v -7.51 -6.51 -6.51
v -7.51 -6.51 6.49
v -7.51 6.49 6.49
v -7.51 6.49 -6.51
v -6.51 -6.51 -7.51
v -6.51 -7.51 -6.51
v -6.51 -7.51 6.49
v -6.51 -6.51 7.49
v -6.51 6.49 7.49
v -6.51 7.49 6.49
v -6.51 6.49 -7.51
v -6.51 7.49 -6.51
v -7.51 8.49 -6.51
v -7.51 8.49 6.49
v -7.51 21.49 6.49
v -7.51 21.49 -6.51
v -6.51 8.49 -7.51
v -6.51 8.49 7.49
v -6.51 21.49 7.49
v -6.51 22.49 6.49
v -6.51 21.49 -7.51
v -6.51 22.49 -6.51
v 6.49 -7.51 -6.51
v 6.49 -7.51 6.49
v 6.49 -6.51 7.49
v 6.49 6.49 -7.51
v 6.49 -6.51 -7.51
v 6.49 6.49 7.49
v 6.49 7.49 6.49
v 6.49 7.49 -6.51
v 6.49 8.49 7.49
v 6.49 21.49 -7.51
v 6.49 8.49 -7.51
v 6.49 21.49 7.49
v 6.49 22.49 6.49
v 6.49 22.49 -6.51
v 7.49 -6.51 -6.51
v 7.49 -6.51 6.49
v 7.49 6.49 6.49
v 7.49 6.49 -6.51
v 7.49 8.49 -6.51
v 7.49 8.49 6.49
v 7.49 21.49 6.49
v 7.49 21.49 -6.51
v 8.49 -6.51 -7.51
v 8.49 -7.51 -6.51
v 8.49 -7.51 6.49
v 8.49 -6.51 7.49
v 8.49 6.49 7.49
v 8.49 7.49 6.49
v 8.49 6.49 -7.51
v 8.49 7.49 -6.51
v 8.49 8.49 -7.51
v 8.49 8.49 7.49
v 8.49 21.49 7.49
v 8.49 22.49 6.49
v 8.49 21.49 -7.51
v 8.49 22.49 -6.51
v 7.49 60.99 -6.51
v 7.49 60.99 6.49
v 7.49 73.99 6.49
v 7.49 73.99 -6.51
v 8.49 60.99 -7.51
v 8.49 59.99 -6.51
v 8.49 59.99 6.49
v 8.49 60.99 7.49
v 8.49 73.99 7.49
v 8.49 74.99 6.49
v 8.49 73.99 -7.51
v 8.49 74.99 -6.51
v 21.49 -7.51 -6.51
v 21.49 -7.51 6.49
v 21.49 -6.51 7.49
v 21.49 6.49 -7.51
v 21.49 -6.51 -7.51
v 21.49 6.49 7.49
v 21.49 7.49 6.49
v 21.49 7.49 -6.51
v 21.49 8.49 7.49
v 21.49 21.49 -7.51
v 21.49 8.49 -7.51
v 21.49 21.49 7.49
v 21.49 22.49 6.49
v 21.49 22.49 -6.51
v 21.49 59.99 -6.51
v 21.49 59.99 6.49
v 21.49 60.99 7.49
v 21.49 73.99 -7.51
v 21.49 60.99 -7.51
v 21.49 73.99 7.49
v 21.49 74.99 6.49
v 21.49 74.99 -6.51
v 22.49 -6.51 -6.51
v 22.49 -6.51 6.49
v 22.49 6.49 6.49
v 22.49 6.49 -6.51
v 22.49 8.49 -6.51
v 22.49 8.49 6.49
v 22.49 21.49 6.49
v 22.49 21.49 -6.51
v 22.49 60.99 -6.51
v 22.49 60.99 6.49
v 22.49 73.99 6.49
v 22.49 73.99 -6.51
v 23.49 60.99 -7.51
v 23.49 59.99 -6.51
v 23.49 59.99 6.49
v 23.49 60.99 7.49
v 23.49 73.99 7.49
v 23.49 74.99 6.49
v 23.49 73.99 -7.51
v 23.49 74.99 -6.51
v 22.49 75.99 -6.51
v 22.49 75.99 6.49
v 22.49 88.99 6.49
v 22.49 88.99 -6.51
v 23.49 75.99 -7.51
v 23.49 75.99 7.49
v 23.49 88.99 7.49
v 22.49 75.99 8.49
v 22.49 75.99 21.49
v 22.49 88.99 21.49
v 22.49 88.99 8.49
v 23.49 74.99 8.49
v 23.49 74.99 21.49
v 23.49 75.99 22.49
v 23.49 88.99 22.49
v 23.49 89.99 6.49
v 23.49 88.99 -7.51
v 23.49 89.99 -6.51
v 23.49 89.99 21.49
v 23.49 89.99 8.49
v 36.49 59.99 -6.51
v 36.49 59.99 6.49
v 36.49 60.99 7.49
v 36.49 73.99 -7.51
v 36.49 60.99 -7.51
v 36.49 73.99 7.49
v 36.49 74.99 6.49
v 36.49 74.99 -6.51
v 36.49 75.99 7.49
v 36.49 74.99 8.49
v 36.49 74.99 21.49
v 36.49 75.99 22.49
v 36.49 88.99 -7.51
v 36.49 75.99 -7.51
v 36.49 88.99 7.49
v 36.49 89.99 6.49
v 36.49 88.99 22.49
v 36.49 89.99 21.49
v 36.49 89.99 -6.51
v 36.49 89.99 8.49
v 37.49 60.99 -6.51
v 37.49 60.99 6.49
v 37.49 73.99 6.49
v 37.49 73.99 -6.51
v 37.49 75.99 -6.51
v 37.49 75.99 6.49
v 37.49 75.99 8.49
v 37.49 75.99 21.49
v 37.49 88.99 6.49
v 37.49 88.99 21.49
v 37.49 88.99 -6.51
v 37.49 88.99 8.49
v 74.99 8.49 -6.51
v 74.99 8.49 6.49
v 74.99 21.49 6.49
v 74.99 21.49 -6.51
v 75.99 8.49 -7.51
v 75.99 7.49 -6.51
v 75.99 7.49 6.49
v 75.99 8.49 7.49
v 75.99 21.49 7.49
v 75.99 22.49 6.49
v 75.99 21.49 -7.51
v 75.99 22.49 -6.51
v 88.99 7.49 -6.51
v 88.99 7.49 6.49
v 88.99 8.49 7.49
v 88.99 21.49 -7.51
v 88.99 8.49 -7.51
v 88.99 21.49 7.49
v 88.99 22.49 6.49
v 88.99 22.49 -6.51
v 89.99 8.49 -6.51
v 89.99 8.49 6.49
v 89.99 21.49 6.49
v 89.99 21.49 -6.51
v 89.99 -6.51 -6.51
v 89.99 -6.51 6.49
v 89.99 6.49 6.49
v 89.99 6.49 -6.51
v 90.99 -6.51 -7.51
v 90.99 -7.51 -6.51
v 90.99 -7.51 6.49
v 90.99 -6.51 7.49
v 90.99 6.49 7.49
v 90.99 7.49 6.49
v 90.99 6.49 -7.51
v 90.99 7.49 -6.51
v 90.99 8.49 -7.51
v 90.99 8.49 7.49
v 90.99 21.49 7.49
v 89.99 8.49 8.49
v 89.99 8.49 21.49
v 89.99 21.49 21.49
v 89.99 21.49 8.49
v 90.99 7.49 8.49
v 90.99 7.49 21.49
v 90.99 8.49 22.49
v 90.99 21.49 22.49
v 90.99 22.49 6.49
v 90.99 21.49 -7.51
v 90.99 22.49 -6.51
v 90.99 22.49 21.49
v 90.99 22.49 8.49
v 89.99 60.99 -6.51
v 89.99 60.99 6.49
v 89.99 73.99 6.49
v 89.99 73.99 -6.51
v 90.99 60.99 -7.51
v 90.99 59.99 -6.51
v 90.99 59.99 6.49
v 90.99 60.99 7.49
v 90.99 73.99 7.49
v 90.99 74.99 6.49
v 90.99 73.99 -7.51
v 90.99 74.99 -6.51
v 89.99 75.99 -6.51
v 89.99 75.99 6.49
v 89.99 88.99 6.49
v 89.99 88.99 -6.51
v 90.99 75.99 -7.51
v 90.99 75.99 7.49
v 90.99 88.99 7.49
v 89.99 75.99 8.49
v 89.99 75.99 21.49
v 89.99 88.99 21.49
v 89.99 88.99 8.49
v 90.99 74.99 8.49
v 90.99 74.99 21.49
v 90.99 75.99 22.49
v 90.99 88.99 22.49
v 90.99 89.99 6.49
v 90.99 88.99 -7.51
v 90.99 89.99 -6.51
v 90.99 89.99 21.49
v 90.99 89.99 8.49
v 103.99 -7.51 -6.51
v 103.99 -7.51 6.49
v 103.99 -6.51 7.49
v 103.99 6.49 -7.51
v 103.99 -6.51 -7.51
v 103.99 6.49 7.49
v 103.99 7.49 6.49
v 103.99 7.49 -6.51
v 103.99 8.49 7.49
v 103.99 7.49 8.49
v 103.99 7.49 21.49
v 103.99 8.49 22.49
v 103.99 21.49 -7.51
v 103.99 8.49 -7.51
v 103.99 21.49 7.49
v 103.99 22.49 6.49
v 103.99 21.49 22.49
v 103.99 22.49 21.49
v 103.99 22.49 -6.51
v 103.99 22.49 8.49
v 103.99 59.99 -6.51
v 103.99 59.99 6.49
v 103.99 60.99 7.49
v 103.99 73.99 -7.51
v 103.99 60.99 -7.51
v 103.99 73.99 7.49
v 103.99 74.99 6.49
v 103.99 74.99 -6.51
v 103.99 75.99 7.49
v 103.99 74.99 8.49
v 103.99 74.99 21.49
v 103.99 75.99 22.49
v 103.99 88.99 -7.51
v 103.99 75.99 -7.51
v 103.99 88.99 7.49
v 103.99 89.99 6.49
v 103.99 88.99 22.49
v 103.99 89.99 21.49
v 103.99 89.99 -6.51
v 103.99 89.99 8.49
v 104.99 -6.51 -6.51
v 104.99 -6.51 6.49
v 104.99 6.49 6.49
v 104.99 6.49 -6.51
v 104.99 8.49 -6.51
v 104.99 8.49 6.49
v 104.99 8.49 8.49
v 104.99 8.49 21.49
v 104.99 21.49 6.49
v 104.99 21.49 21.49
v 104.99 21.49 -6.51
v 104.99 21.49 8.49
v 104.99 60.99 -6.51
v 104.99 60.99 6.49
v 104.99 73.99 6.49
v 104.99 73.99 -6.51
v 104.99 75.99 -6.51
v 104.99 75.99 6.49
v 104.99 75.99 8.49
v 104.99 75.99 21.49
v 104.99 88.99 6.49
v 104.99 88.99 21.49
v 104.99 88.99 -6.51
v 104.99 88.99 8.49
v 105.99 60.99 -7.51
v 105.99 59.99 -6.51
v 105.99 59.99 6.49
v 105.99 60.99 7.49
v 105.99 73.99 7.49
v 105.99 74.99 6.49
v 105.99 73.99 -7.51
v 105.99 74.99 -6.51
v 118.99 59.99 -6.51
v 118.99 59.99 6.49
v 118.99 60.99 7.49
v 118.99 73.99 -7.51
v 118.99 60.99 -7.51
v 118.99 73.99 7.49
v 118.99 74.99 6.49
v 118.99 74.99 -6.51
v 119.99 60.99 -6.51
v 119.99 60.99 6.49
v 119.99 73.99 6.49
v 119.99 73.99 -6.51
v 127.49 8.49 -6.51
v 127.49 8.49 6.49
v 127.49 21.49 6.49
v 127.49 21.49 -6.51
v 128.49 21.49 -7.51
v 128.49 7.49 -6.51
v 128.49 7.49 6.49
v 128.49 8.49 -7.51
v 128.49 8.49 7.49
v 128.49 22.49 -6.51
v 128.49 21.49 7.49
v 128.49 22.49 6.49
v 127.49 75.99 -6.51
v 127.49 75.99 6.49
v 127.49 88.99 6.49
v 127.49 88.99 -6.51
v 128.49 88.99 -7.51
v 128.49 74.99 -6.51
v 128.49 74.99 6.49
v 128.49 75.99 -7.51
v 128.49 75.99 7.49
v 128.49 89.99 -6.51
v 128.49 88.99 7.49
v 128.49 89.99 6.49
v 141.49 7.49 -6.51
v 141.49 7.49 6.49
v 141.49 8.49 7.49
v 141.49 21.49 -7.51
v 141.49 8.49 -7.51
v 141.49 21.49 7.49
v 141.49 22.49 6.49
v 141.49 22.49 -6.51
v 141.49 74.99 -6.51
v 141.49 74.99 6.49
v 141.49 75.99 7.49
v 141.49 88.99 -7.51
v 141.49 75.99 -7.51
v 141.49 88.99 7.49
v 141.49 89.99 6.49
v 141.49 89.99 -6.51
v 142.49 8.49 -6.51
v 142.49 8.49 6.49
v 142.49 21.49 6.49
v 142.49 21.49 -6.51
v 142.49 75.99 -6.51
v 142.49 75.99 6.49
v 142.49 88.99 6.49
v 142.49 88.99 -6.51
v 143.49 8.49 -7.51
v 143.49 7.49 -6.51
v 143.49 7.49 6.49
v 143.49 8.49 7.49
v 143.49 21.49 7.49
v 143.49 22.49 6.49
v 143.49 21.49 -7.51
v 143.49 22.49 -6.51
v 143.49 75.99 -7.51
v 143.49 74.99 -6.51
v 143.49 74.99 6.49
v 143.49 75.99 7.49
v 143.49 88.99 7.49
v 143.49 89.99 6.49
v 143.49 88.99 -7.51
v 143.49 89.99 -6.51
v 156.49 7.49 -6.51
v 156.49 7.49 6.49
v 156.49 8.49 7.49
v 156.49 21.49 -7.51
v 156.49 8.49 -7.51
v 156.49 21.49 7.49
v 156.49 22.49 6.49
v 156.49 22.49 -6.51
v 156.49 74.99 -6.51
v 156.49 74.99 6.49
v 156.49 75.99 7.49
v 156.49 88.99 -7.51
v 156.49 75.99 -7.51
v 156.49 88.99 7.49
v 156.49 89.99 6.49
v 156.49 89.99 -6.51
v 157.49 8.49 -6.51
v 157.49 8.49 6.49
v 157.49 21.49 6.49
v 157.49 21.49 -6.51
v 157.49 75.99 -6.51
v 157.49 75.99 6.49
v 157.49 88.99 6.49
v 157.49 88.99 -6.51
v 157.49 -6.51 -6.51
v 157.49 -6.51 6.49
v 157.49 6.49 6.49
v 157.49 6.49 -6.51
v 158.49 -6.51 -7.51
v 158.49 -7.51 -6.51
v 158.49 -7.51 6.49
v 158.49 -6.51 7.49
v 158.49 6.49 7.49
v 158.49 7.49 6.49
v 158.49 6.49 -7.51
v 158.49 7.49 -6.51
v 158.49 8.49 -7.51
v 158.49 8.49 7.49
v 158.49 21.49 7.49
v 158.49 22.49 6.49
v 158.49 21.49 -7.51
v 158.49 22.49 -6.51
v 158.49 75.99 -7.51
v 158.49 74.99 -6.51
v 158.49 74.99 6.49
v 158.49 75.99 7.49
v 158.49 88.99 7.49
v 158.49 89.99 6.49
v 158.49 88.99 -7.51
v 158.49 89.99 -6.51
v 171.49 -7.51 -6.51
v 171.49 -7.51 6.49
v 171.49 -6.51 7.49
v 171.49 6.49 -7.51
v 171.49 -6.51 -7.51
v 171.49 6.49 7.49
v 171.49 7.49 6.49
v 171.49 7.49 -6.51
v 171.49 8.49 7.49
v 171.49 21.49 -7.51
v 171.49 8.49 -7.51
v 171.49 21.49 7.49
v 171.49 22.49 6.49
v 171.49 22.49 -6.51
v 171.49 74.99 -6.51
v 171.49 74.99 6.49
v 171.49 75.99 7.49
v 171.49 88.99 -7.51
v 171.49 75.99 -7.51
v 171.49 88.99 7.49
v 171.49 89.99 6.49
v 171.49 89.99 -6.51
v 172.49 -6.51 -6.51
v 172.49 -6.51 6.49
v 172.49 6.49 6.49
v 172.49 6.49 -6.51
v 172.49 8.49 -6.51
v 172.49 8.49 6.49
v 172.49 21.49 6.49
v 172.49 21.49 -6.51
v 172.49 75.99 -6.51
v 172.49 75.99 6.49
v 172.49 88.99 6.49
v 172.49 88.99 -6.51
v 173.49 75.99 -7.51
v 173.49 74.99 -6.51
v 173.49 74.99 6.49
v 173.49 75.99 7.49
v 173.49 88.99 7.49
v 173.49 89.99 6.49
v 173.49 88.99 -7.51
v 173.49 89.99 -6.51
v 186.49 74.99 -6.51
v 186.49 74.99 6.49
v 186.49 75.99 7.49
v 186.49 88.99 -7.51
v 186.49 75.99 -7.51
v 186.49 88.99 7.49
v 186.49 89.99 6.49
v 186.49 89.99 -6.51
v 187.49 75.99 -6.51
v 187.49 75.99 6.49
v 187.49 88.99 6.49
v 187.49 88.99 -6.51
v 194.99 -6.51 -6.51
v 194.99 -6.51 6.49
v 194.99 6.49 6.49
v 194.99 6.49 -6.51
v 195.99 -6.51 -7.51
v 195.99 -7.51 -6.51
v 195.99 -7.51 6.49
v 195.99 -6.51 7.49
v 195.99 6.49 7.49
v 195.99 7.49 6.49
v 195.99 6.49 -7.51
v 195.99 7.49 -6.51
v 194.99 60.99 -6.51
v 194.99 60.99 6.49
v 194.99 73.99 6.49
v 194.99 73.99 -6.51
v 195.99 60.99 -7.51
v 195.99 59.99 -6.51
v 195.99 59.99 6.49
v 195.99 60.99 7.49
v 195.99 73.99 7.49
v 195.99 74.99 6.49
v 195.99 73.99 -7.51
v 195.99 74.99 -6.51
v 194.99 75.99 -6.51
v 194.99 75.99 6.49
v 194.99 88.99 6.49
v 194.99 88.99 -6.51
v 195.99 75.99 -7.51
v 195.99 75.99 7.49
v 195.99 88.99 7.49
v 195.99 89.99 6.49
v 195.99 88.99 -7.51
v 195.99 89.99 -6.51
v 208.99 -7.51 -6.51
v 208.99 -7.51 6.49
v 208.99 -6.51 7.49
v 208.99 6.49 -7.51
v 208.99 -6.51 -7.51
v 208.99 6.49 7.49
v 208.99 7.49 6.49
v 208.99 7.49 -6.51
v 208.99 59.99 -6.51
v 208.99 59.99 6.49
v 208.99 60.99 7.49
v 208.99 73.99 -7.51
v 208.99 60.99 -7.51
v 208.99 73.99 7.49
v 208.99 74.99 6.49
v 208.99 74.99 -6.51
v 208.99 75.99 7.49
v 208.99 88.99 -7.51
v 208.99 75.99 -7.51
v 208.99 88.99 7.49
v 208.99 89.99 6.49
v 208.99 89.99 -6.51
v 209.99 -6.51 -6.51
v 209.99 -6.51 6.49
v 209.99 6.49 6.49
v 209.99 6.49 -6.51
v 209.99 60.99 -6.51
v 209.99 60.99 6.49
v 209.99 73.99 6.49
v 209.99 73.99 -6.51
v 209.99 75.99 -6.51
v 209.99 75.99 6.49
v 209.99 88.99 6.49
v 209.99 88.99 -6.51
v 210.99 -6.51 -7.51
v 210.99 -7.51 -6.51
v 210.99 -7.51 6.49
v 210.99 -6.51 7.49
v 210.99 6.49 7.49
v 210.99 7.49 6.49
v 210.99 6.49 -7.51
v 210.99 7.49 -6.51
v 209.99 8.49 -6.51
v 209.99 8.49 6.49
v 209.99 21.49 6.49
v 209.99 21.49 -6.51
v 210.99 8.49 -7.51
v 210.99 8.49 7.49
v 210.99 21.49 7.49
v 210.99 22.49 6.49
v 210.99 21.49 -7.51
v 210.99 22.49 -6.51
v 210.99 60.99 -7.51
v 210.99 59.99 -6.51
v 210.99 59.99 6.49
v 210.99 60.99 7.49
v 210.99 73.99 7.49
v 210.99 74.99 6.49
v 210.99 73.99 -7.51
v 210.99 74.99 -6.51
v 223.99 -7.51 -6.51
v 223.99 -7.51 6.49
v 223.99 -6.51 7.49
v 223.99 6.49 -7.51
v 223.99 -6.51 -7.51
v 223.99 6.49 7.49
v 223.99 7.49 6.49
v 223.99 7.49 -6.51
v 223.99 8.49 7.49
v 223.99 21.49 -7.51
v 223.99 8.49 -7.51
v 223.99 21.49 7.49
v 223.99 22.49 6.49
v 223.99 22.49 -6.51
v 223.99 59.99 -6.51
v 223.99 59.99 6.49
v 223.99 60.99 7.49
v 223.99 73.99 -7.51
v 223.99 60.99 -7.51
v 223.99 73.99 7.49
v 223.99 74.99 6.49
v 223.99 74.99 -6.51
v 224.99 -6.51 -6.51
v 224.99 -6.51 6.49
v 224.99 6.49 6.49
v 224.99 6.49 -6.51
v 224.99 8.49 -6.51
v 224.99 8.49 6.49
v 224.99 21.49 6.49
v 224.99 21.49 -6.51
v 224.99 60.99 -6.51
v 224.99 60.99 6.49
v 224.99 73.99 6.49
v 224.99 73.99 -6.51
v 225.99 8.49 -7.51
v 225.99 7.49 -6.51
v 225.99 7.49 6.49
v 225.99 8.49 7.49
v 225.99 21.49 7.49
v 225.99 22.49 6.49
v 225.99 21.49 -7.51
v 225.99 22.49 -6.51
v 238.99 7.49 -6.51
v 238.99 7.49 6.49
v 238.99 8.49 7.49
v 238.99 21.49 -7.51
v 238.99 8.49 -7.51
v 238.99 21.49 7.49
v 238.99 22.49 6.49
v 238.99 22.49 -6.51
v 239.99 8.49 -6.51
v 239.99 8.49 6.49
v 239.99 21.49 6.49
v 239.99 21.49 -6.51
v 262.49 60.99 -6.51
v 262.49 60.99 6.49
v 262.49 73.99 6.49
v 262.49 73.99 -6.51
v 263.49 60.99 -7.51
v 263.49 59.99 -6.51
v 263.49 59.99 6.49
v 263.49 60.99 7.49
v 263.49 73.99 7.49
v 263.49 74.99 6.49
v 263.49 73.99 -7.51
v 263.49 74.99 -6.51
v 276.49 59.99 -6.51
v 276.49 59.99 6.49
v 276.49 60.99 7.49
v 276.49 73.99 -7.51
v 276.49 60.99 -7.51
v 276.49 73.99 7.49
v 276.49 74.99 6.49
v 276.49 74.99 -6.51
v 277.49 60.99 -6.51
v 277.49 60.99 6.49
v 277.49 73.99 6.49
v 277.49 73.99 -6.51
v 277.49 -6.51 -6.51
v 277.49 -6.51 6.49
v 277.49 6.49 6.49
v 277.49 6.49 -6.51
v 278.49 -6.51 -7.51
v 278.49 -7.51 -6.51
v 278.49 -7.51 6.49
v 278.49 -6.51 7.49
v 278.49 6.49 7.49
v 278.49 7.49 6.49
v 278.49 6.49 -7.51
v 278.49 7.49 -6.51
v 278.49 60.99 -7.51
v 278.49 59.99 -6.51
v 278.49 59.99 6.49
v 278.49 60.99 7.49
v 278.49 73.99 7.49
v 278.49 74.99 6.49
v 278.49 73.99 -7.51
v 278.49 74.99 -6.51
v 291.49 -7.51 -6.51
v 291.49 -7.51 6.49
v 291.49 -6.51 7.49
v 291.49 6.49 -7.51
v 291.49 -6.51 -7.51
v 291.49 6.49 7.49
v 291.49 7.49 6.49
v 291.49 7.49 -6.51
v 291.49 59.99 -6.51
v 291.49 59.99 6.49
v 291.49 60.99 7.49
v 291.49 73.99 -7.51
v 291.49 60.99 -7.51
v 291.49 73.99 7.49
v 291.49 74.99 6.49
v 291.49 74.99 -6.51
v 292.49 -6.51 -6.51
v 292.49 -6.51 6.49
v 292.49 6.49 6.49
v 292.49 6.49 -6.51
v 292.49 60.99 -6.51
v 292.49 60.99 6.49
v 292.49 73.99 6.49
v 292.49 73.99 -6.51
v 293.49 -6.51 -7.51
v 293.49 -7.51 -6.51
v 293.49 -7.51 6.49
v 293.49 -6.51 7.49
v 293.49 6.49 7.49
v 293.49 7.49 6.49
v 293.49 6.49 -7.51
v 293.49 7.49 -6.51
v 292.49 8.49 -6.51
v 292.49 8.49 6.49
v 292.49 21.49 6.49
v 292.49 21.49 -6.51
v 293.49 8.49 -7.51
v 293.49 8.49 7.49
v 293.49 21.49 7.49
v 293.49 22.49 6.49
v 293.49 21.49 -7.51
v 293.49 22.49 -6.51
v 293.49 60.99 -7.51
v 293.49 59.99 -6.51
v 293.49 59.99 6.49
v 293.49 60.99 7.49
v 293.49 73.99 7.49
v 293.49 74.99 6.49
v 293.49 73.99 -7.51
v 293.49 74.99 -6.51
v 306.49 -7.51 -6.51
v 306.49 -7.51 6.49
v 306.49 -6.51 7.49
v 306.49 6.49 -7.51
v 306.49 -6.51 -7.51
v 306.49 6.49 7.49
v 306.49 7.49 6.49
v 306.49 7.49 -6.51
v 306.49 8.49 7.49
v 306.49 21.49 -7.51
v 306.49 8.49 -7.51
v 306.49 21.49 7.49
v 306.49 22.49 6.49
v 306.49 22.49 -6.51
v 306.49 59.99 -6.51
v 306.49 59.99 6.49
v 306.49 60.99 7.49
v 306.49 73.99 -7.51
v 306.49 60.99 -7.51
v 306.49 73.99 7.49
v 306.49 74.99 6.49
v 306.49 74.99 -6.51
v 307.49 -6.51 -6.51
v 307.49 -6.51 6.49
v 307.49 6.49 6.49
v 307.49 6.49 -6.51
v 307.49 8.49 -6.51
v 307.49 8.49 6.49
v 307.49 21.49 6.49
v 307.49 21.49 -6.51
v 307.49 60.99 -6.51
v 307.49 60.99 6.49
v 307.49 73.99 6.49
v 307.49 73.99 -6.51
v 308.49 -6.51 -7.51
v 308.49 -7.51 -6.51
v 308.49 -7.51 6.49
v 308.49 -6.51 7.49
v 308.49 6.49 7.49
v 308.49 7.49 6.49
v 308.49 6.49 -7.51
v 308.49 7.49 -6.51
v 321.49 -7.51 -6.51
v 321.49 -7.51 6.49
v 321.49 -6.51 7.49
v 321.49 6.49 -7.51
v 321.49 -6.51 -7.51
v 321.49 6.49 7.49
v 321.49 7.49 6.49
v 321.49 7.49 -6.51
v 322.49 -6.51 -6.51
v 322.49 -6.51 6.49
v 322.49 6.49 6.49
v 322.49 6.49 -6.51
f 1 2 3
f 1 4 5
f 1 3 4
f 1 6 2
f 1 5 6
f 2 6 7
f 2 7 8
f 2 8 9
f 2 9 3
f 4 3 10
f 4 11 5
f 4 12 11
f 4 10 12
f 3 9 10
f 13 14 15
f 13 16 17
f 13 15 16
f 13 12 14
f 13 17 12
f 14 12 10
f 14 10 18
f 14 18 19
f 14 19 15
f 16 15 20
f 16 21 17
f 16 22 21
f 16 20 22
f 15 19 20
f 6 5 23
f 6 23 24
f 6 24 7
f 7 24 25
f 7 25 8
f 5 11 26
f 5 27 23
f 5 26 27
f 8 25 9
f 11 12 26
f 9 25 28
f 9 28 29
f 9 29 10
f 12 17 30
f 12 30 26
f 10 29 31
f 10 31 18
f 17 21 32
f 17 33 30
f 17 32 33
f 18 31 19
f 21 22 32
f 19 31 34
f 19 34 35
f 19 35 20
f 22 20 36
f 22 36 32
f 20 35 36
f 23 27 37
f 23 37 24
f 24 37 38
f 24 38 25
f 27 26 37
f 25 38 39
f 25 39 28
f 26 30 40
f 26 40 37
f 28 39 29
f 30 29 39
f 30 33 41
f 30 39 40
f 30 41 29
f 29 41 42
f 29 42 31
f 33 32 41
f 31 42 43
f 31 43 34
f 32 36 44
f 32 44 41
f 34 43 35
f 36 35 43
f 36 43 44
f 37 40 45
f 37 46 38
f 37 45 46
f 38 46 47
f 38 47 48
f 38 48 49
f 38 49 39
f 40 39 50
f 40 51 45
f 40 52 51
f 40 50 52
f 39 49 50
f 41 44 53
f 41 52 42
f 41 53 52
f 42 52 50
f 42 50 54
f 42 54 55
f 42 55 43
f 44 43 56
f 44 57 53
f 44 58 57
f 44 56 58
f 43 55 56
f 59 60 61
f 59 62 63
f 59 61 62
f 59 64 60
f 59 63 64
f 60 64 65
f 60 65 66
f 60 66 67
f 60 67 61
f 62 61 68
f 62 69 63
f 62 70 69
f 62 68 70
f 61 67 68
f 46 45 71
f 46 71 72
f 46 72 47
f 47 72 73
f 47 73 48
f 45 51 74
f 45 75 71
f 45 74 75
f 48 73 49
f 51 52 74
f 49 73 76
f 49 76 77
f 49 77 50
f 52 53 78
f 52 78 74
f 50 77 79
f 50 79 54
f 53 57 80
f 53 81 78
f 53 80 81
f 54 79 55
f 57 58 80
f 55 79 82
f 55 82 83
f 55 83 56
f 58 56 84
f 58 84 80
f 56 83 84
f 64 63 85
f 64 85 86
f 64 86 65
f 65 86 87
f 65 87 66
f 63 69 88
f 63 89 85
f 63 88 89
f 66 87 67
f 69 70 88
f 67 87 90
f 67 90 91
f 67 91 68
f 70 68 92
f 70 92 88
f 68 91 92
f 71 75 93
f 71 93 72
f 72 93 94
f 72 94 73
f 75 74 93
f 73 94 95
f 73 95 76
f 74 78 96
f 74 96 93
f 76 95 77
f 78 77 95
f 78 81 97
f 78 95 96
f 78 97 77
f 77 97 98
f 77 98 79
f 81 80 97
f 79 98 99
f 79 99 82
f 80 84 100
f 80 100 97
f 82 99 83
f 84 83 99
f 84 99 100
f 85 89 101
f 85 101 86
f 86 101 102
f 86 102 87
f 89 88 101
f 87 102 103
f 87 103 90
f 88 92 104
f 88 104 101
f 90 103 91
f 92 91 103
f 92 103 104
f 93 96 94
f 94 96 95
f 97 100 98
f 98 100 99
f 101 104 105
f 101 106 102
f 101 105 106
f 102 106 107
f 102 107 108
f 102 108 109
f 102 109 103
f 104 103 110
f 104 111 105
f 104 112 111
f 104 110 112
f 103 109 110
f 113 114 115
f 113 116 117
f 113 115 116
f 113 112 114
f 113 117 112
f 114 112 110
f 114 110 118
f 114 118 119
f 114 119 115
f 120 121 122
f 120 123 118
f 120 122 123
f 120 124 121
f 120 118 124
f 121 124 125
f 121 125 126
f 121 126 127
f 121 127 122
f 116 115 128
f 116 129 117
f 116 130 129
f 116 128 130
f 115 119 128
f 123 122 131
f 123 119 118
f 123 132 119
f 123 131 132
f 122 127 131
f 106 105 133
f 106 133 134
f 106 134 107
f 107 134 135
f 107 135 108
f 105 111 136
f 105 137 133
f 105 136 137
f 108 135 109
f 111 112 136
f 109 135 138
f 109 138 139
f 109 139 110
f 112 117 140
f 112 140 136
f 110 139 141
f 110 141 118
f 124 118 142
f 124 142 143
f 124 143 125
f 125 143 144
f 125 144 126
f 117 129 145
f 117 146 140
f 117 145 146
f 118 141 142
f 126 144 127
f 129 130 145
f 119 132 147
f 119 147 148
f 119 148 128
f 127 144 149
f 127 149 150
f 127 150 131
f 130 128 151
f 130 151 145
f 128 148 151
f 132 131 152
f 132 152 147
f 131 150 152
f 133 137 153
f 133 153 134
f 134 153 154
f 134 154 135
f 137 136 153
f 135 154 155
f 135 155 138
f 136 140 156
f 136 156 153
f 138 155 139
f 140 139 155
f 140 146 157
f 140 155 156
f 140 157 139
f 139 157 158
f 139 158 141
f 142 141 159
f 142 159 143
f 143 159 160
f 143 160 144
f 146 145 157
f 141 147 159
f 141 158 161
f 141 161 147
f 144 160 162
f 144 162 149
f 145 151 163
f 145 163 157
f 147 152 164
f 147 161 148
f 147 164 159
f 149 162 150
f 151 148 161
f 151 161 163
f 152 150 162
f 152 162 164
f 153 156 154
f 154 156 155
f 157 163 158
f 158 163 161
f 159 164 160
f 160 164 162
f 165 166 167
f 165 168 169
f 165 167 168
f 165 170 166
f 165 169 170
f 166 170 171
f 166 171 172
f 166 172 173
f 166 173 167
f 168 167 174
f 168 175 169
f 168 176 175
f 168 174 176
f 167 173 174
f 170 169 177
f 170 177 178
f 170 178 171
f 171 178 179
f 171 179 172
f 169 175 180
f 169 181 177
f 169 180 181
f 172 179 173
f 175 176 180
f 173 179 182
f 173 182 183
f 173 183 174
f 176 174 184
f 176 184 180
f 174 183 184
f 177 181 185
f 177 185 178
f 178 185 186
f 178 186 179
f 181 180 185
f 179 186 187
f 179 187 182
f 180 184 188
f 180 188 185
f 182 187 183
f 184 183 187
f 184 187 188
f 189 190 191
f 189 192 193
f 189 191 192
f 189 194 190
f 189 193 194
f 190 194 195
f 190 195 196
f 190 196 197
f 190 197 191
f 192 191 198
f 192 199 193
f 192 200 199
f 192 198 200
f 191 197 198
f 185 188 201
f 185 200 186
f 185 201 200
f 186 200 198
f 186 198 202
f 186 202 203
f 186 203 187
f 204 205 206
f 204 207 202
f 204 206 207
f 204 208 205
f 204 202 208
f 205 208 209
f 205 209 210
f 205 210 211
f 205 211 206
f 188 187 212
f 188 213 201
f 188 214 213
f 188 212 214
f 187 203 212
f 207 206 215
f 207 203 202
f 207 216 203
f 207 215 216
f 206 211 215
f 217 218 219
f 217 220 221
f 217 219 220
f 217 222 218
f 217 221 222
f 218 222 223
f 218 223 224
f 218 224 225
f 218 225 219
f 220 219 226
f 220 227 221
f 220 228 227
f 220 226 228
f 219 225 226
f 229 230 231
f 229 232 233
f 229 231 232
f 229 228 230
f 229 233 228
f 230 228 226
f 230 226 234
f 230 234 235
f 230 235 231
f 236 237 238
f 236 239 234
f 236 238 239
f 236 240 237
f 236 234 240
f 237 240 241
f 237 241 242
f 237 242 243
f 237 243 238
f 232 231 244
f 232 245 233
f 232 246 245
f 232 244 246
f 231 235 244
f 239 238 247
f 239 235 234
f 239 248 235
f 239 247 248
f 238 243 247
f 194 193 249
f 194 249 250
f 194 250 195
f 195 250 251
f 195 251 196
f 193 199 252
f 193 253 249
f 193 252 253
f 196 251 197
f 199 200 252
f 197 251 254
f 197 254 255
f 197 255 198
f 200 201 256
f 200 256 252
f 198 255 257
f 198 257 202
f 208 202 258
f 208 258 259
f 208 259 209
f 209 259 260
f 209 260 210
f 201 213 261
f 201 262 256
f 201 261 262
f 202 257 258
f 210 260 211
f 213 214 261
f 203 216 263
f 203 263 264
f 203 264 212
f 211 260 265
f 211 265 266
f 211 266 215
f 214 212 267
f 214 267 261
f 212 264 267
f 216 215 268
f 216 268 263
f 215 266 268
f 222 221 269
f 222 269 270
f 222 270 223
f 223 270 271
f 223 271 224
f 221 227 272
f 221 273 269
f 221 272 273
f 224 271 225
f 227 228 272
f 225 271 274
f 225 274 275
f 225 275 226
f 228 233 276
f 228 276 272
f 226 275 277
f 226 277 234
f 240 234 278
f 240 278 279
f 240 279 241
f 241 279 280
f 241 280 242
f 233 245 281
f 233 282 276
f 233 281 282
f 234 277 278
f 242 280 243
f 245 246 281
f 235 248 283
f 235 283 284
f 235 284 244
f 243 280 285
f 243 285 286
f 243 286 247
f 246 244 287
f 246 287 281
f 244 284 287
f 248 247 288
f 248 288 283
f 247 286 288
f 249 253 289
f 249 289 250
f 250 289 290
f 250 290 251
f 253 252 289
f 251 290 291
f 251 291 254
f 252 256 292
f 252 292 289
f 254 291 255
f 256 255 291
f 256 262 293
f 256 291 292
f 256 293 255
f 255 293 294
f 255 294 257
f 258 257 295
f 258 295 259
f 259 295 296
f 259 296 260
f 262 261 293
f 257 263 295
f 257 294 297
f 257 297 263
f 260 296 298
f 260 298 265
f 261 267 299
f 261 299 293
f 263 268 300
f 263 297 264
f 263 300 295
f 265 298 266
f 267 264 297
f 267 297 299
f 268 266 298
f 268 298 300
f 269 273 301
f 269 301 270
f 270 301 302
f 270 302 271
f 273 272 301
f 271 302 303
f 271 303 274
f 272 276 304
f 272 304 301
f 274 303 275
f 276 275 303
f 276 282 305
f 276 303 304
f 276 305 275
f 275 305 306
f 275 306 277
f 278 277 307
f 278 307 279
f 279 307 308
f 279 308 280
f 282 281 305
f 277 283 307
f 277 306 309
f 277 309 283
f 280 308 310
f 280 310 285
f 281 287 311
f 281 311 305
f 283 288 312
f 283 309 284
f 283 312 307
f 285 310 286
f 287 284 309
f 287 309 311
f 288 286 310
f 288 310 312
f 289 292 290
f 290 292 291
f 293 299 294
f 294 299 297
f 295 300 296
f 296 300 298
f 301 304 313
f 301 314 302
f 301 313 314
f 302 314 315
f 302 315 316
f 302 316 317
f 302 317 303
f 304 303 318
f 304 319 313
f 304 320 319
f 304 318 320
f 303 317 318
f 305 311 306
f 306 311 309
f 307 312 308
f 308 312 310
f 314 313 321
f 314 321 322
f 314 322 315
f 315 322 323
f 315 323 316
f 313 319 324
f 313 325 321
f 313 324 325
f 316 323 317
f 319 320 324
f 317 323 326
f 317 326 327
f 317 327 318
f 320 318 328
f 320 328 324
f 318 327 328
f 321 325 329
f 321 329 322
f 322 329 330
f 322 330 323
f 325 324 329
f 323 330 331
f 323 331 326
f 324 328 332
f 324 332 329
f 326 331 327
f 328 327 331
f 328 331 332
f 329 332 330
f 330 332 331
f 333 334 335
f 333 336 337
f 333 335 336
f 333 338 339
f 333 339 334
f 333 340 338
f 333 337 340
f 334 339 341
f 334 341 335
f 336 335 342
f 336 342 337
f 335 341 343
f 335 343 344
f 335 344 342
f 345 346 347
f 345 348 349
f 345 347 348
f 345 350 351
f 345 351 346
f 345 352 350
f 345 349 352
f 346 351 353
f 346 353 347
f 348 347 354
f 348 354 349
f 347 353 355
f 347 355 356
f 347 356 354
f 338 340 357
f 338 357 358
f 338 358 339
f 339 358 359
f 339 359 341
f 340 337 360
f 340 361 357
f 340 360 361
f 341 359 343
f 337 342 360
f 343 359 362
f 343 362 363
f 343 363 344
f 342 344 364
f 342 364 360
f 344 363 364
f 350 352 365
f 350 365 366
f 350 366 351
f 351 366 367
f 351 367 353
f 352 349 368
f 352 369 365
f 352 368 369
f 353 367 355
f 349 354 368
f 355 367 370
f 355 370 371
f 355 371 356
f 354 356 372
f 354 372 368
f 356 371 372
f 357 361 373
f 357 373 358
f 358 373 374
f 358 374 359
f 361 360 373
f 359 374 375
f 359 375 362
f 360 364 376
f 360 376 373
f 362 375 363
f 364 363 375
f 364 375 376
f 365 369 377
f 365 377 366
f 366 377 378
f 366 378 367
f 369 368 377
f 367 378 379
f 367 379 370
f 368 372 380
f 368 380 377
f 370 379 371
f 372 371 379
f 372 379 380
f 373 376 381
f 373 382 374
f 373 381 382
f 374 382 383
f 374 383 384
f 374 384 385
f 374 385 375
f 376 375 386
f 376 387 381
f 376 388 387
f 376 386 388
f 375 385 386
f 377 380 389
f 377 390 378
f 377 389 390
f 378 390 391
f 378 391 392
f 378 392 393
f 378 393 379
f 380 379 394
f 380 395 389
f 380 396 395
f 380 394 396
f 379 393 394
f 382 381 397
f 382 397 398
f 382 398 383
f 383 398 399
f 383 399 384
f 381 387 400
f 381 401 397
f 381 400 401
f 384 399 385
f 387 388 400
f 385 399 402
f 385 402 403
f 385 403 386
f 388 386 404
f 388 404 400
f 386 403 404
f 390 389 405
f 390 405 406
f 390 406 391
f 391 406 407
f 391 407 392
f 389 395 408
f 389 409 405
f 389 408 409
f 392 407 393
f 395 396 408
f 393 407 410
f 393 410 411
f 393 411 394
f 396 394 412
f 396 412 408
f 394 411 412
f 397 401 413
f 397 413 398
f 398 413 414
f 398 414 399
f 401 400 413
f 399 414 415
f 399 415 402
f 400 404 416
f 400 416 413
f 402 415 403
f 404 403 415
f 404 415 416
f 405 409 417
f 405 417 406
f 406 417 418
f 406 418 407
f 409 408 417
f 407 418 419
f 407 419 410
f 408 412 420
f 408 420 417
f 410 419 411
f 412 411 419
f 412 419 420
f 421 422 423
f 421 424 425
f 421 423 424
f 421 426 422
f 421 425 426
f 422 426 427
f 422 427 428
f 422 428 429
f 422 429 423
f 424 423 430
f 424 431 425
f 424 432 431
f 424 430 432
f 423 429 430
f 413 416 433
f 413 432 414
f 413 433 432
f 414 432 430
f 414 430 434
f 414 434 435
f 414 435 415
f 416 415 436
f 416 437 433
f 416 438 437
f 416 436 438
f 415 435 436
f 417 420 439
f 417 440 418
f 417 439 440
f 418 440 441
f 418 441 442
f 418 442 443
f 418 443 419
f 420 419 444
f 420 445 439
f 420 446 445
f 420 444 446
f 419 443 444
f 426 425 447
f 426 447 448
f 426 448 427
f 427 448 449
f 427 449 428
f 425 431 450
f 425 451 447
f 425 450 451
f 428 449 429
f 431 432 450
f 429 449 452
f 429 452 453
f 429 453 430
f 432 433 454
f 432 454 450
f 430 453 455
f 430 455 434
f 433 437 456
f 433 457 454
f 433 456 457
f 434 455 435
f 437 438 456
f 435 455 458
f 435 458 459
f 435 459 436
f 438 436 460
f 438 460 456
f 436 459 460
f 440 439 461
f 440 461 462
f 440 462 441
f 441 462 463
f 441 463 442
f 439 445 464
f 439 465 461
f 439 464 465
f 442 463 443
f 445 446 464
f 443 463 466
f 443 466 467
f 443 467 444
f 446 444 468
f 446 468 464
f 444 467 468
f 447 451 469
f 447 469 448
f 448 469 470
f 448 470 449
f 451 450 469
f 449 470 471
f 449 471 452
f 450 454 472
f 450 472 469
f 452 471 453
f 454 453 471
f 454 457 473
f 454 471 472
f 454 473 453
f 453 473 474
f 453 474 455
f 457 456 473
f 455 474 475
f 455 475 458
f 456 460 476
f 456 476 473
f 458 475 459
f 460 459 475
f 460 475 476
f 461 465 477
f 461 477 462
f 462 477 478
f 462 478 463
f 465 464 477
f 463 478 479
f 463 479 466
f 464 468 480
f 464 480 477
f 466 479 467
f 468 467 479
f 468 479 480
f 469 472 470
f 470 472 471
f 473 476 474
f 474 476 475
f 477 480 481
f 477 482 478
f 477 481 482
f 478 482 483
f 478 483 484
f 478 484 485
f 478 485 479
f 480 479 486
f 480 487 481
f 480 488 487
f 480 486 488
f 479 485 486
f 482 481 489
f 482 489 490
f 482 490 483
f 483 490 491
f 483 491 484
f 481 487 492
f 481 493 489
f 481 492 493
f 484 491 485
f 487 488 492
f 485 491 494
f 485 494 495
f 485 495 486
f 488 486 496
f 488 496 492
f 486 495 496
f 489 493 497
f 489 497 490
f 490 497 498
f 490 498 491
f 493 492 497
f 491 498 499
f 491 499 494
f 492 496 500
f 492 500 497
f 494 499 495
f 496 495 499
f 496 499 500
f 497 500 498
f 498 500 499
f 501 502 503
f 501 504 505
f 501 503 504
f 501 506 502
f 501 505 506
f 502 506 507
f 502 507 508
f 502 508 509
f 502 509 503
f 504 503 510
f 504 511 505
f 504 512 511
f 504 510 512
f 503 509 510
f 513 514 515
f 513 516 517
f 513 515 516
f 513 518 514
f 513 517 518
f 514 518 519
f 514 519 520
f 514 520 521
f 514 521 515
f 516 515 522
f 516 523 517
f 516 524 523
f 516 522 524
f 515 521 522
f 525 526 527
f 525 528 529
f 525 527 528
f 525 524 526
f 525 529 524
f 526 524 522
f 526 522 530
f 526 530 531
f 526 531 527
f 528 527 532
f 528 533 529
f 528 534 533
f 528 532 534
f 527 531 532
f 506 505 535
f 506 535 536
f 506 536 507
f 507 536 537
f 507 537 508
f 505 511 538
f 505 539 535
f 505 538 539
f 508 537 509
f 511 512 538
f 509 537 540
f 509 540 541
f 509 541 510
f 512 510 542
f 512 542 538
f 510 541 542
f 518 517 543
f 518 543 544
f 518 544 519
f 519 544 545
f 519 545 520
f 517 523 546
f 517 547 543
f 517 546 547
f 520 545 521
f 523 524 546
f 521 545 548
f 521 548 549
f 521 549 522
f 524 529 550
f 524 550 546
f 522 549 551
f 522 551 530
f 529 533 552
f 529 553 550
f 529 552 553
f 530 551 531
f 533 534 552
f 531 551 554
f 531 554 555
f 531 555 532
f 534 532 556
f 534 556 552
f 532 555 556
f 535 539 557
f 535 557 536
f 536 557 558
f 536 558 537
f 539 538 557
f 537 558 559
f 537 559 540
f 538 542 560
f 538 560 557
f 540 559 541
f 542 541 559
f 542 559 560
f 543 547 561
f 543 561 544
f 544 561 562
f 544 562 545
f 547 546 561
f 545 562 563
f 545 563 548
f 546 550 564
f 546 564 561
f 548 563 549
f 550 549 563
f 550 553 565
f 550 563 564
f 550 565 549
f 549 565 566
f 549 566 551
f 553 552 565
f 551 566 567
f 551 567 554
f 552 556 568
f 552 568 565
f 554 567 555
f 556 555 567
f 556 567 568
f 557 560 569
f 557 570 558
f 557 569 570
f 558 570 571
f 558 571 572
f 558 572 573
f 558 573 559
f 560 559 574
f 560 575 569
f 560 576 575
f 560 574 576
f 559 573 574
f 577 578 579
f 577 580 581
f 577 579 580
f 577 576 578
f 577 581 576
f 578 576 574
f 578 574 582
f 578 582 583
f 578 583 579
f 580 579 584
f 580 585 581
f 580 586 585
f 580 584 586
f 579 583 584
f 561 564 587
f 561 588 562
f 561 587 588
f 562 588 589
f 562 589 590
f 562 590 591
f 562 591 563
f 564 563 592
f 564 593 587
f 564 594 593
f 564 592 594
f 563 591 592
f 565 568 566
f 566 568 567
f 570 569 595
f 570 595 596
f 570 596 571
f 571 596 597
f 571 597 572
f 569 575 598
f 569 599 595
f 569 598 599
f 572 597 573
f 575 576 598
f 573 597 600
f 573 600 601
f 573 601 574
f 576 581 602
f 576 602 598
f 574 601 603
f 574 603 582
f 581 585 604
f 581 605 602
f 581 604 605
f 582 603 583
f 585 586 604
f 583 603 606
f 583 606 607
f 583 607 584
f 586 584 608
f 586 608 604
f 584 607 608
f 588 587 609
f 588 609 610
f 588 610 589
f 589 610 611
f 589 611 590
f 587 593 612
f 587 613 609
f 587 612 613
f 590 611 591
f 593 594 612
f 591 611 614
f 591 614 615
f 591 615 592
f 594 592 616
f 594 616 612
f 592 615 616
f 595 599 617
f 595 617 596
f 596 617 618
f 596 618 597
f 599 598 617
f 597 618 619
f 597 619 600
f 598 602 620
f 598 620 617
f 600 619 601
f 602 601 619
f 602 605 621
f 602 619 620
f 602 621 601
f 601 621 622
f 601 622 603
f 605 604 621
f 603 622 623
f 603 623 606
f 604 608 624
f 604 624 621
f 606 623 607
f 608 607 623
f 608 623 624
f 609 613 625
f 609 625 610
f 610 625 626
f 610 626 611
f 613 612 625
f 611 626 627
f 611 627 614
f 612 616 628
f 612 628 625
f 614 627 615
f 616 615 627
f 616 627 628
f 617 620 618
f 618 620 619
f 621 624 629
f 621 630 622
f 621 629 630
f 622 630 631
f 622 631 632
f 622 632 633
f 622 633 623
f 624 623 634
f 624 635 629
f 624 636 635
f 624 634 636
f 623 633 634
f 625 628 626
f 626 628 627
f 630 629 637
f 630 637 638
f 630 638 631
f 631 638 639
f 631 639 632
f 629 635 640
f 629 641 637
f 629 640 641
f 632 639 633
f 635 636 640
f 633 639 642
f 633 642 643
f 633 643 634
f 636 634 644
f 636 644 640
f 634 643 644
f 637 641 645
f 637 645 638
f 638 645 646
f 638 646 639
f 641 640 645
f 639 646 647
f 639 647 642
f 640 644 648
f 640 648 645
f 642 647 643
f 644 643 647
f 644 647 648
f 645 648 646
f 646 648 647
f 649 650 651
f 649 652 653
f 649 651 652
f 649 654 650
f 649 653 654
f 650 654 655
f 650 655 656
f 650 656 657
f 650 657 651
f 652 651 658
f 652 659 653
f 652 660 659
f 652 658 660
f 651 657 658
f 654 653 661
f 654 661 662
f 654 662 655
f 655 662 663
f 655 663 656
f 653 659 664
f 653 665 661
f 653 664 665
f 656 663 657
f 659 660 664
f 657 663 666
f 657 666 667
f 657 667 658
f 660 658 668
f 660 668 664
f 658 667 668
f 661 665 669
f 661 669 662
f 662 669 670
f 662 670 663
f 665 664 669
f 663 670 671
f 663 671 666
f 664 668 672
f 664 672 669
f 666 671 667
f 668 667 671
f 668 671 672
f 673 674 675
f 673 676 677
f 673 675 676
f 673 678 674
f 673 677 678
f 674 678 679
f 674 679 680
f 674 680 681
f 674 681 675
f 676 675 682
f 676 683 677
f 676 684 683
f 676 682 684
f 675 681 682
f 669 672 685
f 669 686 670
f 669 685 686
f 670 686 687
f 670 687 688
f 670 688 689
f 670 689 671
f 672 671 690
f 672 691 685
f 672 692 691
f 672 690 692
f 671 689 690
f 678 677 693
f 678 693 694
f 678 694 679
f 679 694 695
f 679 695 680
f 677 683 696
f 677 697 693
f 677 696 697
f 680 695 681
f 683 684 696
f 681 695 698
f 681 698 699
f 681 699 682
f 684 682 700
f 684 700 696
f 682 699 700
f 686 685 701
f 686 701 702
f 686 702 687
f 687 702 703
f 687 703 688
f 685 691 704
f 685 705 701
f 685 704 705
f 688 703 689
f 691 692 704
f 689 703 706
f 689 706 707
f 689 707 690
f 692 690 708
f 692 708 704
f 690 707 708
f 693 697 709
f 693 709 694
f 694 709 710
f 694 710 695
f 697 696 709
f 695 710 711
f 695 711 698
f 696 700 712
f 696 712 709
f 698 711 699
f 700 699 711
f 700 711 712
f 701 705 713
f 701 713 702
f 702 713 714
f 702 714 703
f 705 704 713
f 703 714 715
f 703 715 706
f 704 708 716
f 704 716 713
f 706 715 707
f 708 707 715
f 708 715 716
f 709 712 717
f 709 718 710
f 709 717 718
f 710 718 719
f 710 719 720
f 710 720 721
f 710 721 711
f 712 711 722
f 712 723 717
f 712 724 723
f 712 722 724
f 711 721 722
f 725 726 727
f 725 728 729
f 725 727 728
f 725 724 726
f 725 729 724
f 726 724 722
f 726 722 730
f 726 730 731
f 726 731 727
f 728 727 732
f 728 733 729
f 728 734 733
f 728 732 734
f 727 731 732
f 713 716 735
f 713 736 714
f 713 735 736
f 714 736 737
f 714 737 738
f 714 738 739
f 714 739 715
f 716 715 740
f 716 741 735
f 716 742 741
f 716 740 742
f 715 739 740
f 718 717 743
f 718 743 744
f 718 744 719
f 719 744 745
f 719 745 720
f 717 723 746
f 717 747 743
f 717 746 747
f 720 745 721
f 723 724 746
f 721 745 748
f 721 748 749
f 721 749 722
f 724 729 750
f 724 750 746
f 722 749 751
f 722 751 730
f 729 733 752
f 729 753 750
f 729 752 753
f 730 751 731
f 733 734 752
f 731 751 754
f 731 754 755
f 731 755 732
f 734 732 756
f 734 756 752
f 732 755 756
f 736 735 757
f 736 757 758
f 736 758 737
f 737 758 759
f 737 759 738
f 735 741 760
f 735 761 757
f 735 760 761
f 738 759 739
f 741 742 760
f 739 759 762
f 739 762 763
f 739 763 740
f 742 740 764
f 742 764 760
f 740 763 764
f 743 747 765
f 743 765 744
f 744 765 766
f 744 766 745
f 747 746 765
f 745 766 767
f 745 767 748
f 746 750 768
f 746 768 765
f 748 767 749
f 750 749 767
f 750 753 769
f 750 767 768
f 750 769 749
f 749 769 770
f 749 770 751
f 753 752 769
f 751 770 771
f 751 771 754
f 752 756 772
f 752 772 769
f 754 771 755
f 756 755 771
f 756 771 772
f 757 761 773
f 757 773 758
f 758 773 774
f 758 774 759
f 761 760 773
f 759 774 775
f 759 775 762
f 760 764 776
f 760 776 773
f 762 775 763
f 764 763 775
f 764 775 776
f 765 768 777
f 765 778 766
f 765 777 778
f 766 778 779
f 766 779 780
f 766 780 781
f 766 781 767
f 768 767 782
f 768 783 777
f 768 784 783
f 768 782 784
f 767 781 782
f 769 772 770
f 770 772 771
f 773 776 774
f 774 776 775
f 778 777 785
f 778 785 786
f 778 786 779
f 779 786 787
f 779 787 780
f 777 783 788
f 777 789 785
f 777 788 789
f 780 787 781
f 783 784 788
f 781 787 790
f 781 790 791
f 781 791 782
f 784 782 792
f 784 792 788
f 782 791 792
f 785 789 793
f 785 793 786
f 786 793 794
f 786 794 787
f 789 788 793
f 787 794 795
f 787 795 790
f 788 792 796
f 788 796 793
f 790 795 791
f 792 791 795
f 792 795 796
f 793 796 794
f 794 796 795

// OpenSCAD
/* scADVENT 2021 - Polycube  by Ulrich Bär  license:CC0 
 https://creativecommons.org/publicdomain/zero/1.0/
 
 
 Today we make a https://en.wikipedia.org/wiki/Polycube  we try a tetracube.
 tetra means 4  so always 4 cubes together  there are 8 unique possibilities
 
 */

/*[Polycube]*/
size=15;
chamfer=1;
singleCubeNr=0;


if (singleCubeNr)PolyCube(singleCubeNr);
  else for (i=[0:4],j=[0:1])translate([i,j]*size*4.5)PolyCube(i+1+j*5);


// One basis cube
module BaseC(size,edge){
  minkowski(){
    cube(size-edge*2,true);
    union(){
      linear_extrude(edge,scale=0)circle(edge,$fn=4);
      rotate([180,0])linear_extrude(edge,scale=0)circle(edge,$fn=4);
    }
  }
}


// now we have to attach multiple

module PolyCube(nr){
  id=nr%(len(blueprint)+1); // everything above 9 will count from 0 again (but gets different colors)
build=blueprint[id-1]; // we taking the needed build instructions from our list starting with 0
color(rands(0,1,3,nr)) // a random color but with nr as seed so equal tetracubes get the same color  
for(x=[0:3],y=[0:1],z=[0:1])if(build[y+z*2][x])translate([x*size -.01,y*size -.01,z*size -.01])BaseC(size,chamfer);
  
}


blueprint=[
[[1,1,0,0],     // first row x from x=0-3
 [1,1,0,0],    // second row x with y=1 this is [1]
 [0,0,0,0],   // third row x y=0 and z this is [2] this is on top of the first row
 [0,0,0,0]], // second row x y=1 and z this is [3] or [1+1*2] y+z y=0 or 1, z=0 or 2

[[0,0,1,0],
 [0,1,1,0],
 [0,0,0,0],
 [0,0,1,0]],

[[0,0,1,0],
 [1,1,1,0],
 [0,0,0,0],
 [0,0,0,0]],
 
[[1,1,0,0],
 [0,1,1,0],
 [0,0,0,0],
 [0,0,0,0]],
 
[[0,1,1,1],
 [0,0,1,0],
 [0,0,0,0],
 [0,0,0,0]],
 
[[0,1,1,0],
 [0,0,1,0],
 [0,0,0,0],
 [0,0,1,0]],
 
[[0,0,1,1],
 [0,0,1,0],
 [0,0,0,0],
 [0,0,1,0]],
 
[[0,0,0,0],  // this is the last tetracube but for filling a 3×3 we need to add a Tricube
 [1,1,1,1],
 [0,0,0,0],
 [0,0,0,0]],
 
[[1,1,0,0],  // this is one Tricube
 [1,0,0,0],
 [0,0,0,0],
 [0,0,0,0]], 
 
[[1,1,1,0],  // this is the second Tricube
 [0,0,0,0],
 [0,0,0,0],
 [0,0,0,0]]

];
